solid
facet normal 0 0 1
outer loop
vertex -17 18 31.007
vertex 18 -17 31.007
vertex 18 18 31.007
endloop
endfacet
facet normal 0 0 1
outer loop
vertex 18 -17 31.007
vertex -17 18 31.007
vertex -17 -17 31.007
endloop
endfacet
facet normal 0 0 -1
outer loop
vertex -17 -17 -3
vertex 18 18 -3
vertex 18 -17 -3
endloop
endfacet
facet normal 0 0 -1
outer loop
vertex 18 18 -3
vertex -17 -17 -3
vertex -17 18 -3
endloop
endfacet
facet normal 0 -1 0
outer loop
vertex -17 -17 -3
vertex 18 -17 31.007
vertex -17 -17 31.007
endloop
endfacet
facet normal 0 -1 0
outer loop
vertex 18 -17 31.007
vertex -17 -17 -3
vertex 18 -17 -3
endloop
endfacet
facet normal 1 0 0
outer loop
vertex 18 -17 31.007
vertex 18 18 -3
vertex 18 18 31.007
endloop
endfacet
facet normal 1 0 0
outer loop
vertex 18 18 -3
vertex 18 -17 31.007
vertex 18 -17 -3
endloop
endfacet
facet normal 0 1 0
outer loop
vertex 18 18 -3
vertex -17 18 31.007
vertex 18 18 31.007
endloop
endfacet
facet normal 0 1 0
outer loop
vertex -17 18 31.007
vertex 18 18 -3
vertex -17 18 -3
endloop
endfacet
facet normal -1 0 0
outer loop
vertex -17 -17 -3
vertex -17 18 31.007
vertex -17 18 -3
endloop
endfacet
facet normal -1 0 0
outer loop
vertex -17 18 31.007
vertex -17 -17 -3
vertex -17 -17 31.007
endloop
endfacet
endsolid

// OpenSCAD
translate([-17, -17, -3]) cube(size = [35, 35, 34.006664199358156], center = false);
